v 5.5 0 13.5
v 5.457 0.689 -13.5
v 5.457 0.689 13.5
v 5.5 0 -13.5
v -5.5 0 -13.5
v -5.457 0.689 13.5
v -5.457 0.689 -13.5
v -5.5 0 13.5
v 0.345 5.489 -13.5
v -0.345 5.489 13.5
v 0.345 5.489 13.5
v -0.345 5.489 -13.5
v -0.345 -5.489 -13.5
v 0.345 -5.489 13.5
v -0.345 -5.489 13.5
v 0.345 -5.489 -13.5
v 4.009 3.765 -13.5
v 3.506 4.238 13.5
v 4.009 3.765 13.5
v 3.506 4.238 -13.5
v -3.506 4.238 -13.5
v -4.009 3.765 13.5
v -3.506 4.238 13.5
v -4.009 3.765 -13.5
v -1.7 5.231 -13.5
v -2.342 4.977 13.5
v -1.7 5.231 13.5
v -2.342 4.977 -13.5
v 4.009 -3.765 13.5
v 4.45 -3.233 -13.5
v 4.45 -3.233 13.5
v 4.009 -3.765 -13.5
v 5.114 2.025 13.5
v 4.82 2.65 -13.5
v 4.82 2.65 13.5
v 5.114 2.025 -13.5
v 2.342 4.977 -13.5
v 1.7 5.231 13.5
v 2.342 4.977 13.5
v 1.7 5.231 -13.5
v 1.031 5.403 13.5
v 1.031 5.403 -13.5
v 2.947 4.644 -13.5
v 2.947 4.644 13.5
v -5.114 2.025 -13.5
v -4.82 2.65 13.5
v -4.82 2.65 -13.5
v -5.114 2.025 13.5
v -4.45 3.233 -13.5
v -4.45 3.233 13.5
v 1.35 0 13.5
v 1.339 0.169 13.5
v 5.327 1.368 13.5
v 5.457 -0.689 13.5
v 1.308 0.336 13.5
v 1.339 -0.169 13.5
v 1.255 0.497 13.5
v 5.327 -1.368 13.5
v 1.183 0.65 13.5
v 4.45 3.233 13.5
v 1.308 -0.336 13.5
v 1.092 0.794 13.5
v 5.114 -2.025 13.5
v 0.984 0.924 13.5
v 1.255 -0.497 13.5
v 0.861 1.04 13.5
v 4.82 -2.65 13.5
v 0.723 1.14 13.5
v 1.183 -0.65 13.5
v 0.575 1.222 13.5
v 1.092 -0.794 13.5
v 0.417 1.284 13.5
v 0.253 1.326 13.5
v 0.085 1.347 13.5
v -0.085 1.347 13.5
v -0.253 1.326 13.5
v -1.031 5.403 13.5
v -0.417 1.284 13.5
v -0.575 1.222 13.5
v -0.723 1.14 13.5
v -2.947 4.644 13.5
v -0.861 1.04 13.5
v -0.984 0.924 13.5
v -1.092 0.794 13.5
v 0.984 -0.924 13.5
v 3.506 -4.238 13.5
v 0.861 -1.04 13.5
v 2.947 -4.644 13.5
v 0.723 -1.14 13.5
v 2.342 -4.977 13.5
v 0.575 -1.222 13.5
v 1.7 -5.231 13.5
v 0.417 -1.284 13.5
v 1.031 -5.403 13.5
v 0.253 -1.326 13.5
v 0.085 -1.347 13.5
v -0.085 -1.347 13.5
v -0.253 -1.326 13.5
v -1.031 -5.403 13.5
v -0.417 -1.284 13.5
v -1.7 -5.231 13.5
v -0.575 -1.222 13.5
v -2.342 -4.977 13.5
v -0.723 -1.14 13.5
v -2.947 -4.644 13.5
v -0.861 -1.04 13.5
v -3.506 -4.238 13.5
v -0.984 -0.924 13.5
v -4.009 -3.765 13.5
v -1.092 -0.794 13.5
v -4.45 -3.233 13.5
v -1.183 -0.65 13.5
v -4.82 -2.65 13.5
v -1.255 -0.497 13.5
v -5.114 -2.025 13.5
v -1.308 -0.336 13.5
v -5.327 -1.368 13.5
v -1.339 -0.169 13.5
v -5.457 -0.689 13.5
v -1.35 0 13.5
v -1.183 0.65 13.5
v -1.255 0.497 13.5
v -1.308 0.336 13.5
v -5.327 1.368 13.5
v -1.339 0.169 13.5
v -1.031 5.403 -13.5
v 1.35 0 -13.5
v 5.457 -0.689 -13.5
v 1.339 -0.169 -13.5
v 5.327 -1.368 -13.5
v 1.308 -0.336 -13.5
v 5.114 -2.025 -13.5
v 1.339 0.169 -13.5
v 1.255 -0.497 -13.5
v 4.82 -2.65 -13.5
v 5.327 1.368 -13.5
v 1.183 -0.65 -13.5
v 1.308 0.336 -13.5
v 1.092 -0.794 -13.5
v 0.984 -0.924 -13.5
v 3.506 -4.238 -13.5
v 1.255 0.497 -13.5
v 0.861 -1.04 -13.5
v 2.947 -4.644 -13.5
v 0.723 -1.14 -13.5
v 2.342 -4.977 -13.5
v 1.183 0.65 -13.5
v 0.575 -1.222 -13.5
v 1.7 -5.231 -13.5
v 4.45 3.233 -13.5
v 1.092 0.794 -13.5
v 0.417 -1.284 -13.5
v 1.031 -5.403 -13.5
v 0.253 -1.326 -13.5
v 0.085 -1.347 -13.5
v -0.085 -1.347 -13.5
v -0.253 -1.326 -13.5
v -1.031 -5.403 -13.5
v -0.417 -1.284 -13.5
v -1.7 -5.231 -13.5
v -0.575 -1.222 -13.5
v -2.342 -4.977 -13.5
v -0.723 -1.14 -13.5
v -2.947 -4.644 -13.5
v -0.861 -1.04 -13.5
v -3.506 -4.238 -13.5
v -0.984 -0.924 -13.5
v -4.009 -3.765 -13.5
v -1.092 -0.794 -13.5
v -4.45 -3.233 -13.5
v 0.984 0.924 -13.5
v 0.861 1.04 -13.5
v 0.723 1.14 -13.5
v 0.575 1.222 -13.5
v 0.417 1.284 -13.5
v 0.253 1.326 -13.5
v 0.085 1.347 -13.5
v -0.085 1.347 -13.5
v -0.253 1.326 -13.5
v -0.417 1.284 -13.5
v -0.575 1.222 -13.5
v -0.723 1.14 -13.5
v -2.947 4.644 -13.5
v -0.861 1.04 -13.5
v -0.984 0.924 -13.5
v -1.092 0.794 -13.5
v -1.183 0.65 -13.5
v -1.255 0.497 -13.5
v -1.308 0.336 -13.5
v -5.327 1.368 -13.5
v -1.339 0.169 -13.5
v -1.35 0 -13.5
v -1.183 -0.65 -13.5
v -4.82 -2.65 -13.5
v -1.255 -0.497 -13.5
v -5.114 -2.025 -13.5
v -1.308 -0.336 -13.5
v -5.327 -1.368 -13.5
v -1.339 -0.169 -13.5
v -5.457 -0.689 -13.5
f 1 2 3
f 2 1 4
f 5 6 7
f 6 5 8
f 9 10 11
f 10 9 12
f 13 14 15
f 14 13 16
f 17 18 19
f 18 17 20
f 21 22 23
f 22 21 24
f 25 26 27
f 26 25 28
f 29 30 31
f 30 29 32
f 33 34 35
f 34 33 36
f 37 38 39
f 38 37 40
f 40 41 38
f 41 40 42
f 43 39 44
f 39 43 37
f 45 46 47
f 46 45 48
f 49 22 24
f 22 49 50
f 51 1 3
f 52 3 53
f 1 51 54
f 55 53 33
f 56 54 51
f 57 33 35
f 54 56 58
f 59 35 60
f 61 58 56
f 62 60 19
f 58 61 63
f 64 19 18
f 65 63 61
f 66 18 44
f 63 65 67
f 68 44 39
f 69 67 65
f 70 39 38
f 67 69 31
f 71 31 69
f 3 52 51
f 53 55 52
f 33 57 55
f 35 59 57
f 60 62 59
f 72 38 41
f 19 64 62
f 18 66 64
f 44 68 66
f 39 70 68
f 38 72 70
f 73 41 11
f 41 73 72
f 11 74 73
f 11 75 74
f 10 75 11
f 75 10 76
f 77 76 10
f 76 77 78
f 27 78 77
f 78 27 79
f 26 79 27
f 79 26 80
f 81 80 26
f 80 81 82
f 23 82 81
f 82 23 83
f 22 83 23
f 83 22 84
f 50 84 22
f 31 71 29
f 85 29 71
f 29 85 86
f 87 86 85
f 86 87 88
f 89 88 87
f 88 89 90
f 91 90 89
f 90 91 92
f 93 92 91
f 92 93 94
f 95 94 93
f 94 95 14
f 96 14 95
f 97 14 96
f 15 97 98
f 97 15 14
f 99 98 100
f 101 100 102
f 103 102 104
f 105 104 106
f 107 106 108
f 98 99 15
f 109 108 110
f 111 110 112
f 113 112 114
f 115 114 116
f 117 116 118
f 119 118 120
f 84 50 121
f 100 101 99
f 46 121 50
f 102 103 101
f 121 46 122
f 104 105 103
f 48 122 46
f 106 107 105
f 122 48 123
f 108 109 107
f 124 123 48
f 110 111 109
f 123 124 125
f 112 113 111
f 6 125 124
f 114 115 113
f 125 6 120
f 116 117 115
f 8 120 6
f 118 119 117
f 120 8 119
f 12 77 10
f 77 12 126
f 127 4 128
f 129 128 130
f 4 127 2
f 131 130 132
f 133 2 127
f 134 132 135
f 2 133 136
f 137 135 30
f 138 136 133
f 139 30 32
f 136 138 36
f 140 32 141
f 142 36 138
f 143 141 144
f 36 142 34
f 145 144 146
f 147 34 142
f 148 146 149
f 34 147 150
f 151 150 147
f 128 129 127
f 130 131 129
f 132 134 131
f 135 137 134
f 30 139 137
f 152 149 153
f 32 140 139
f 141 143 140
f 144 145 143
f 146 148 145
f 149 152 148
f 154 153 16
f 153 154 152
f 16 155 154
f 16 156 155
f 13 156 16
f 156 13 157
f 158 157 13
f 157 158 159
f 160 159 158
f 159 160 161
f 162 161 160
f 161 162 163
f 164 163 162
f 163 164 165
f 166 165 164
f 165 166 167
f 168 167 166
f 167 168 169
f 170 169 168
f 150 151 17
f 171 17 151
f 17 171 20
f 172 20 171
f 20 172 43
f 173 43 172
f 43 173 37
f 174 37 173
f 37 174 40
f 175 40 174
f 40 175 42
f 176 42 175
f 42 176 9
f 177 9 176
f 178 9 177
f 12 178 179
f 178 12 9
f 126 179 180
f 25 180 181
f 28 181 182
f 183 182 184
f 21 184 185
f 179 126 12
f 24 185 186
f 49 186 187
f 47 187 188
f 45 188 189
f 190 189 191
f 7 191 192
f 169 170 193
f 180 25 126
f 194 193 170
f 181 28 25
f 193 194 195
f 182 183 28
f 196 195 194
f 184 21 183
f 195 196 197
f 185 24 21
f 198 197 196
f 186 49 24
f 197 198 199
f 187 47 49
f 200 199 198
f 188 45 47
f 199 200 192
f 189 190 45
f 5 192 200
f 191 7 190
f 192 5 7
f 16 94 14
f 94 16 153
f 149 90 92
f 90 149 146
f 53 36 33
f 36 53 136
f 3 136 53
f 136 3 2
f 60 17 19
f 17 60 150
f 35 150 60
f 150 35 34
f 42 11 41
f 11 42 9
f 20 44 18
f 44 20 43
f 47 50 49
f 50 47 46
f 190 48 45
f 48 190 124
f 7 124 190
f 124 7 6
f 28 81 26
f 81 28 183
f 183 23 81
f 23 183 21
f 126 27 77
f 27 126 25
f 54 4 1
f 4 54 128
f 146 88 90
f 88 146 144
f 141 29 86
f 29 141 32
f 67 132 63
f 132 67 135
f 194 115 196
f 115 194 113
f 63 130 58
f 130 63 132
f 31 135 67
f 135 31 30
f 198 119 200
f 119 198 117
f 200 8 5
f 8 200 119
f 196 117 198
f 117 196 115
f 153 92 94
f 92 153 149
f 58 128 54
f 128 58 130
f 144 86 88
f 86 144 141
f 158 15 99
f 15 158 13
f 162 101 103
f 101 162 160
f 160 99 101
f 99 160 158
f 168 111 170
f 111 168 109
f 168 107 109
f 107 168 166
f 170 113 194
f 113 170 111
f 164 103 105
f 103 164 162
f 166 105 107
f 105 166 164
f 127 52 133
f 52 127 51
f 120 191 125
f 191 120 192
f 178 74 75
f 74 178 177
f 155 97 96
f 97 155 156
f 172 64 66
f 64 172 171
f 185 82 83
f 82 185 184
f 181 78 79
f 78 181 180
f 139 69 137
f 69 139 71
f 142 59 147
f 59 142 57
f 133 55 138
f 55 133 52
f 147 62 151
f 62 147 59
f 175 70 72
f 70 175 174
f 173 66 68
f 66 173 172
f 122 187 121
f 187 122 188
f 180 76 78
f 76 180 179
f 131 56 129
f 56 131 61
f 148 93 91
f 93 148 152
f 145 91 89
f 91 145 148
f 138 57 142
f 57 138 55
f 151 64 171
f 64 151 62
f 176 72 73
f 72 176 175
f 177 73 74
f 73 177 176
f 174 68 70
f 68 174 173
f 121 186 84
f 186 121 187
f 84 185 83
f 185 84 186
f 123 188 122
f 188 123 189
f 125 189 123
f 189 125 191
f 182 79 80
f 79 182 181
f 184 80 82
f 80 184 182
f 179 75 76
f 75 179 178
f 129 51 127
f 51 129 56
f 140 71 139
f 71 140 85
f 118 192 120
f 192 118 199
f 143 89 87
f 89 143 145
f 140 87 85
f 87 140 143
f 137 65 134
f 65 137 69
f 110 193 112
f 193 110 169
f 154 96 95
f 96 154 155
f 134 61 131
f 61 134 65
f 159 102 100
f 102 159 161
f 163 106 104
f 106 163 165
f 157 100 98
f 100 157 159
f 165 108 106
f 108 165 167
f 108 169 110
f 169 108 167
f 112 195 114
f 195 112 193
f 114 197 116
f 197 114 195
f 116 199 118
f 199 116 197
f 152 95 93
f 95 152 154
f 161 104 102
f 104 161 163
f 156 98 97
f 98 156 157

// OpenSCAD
$fn = 50;


difference() {
	union() {
		translate(v = [0, 0, -13.5000000000]) {
			cylinder(h = 27, r = 5.5000000000);
		}
	}
	union() {
		translate(v = [0, 0, -100.0000000000]) {
			cylinder(h = 200, r = 1.3500000000);
		}
	}
}
